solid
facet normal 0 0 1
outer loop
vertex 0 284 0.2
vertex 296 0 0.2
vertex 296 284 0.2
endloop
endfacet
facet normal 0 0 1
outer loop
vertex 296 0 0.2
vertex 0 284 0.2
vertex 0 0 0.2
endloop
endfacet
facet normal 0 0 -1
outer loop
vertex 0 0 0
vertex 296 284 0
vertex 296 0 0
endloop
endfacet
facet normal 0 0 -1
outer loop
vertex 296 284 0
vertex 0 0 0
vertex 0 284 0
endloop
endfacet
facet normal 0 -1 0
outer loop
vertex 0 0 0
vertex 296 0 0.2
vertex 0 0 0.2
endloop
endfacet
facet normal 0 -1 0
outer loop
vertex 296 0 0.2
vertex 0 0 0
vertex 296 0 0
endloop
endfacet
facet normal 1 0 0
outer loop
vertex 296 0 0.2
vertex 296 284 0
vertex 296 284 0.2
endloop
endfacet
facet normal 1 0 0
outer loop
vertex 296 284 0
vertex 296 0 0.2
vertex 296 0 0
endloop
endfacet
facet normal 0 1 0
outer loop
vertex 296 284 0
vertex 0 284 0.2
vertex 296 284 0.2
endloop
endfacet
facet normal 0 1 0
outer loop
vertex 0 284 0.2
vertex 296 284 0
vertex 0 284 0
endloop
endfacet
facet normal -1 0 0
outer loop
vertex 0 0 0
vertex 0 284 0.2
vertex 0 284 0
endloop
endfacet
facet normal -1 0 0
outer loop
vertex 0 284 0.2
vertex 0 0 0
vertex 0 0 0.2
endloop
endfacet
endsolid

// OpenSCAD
max_x = 296; // cura seems to need 1mm cut off each side in order to slice
max_y = 284; // cura seems to need 1mm cut off each side in order to slice
layer_height = 0.2;
num_layers = 1;
object_height = layer_height * num_layers;

cube([max_x, max_y, object_height]);
